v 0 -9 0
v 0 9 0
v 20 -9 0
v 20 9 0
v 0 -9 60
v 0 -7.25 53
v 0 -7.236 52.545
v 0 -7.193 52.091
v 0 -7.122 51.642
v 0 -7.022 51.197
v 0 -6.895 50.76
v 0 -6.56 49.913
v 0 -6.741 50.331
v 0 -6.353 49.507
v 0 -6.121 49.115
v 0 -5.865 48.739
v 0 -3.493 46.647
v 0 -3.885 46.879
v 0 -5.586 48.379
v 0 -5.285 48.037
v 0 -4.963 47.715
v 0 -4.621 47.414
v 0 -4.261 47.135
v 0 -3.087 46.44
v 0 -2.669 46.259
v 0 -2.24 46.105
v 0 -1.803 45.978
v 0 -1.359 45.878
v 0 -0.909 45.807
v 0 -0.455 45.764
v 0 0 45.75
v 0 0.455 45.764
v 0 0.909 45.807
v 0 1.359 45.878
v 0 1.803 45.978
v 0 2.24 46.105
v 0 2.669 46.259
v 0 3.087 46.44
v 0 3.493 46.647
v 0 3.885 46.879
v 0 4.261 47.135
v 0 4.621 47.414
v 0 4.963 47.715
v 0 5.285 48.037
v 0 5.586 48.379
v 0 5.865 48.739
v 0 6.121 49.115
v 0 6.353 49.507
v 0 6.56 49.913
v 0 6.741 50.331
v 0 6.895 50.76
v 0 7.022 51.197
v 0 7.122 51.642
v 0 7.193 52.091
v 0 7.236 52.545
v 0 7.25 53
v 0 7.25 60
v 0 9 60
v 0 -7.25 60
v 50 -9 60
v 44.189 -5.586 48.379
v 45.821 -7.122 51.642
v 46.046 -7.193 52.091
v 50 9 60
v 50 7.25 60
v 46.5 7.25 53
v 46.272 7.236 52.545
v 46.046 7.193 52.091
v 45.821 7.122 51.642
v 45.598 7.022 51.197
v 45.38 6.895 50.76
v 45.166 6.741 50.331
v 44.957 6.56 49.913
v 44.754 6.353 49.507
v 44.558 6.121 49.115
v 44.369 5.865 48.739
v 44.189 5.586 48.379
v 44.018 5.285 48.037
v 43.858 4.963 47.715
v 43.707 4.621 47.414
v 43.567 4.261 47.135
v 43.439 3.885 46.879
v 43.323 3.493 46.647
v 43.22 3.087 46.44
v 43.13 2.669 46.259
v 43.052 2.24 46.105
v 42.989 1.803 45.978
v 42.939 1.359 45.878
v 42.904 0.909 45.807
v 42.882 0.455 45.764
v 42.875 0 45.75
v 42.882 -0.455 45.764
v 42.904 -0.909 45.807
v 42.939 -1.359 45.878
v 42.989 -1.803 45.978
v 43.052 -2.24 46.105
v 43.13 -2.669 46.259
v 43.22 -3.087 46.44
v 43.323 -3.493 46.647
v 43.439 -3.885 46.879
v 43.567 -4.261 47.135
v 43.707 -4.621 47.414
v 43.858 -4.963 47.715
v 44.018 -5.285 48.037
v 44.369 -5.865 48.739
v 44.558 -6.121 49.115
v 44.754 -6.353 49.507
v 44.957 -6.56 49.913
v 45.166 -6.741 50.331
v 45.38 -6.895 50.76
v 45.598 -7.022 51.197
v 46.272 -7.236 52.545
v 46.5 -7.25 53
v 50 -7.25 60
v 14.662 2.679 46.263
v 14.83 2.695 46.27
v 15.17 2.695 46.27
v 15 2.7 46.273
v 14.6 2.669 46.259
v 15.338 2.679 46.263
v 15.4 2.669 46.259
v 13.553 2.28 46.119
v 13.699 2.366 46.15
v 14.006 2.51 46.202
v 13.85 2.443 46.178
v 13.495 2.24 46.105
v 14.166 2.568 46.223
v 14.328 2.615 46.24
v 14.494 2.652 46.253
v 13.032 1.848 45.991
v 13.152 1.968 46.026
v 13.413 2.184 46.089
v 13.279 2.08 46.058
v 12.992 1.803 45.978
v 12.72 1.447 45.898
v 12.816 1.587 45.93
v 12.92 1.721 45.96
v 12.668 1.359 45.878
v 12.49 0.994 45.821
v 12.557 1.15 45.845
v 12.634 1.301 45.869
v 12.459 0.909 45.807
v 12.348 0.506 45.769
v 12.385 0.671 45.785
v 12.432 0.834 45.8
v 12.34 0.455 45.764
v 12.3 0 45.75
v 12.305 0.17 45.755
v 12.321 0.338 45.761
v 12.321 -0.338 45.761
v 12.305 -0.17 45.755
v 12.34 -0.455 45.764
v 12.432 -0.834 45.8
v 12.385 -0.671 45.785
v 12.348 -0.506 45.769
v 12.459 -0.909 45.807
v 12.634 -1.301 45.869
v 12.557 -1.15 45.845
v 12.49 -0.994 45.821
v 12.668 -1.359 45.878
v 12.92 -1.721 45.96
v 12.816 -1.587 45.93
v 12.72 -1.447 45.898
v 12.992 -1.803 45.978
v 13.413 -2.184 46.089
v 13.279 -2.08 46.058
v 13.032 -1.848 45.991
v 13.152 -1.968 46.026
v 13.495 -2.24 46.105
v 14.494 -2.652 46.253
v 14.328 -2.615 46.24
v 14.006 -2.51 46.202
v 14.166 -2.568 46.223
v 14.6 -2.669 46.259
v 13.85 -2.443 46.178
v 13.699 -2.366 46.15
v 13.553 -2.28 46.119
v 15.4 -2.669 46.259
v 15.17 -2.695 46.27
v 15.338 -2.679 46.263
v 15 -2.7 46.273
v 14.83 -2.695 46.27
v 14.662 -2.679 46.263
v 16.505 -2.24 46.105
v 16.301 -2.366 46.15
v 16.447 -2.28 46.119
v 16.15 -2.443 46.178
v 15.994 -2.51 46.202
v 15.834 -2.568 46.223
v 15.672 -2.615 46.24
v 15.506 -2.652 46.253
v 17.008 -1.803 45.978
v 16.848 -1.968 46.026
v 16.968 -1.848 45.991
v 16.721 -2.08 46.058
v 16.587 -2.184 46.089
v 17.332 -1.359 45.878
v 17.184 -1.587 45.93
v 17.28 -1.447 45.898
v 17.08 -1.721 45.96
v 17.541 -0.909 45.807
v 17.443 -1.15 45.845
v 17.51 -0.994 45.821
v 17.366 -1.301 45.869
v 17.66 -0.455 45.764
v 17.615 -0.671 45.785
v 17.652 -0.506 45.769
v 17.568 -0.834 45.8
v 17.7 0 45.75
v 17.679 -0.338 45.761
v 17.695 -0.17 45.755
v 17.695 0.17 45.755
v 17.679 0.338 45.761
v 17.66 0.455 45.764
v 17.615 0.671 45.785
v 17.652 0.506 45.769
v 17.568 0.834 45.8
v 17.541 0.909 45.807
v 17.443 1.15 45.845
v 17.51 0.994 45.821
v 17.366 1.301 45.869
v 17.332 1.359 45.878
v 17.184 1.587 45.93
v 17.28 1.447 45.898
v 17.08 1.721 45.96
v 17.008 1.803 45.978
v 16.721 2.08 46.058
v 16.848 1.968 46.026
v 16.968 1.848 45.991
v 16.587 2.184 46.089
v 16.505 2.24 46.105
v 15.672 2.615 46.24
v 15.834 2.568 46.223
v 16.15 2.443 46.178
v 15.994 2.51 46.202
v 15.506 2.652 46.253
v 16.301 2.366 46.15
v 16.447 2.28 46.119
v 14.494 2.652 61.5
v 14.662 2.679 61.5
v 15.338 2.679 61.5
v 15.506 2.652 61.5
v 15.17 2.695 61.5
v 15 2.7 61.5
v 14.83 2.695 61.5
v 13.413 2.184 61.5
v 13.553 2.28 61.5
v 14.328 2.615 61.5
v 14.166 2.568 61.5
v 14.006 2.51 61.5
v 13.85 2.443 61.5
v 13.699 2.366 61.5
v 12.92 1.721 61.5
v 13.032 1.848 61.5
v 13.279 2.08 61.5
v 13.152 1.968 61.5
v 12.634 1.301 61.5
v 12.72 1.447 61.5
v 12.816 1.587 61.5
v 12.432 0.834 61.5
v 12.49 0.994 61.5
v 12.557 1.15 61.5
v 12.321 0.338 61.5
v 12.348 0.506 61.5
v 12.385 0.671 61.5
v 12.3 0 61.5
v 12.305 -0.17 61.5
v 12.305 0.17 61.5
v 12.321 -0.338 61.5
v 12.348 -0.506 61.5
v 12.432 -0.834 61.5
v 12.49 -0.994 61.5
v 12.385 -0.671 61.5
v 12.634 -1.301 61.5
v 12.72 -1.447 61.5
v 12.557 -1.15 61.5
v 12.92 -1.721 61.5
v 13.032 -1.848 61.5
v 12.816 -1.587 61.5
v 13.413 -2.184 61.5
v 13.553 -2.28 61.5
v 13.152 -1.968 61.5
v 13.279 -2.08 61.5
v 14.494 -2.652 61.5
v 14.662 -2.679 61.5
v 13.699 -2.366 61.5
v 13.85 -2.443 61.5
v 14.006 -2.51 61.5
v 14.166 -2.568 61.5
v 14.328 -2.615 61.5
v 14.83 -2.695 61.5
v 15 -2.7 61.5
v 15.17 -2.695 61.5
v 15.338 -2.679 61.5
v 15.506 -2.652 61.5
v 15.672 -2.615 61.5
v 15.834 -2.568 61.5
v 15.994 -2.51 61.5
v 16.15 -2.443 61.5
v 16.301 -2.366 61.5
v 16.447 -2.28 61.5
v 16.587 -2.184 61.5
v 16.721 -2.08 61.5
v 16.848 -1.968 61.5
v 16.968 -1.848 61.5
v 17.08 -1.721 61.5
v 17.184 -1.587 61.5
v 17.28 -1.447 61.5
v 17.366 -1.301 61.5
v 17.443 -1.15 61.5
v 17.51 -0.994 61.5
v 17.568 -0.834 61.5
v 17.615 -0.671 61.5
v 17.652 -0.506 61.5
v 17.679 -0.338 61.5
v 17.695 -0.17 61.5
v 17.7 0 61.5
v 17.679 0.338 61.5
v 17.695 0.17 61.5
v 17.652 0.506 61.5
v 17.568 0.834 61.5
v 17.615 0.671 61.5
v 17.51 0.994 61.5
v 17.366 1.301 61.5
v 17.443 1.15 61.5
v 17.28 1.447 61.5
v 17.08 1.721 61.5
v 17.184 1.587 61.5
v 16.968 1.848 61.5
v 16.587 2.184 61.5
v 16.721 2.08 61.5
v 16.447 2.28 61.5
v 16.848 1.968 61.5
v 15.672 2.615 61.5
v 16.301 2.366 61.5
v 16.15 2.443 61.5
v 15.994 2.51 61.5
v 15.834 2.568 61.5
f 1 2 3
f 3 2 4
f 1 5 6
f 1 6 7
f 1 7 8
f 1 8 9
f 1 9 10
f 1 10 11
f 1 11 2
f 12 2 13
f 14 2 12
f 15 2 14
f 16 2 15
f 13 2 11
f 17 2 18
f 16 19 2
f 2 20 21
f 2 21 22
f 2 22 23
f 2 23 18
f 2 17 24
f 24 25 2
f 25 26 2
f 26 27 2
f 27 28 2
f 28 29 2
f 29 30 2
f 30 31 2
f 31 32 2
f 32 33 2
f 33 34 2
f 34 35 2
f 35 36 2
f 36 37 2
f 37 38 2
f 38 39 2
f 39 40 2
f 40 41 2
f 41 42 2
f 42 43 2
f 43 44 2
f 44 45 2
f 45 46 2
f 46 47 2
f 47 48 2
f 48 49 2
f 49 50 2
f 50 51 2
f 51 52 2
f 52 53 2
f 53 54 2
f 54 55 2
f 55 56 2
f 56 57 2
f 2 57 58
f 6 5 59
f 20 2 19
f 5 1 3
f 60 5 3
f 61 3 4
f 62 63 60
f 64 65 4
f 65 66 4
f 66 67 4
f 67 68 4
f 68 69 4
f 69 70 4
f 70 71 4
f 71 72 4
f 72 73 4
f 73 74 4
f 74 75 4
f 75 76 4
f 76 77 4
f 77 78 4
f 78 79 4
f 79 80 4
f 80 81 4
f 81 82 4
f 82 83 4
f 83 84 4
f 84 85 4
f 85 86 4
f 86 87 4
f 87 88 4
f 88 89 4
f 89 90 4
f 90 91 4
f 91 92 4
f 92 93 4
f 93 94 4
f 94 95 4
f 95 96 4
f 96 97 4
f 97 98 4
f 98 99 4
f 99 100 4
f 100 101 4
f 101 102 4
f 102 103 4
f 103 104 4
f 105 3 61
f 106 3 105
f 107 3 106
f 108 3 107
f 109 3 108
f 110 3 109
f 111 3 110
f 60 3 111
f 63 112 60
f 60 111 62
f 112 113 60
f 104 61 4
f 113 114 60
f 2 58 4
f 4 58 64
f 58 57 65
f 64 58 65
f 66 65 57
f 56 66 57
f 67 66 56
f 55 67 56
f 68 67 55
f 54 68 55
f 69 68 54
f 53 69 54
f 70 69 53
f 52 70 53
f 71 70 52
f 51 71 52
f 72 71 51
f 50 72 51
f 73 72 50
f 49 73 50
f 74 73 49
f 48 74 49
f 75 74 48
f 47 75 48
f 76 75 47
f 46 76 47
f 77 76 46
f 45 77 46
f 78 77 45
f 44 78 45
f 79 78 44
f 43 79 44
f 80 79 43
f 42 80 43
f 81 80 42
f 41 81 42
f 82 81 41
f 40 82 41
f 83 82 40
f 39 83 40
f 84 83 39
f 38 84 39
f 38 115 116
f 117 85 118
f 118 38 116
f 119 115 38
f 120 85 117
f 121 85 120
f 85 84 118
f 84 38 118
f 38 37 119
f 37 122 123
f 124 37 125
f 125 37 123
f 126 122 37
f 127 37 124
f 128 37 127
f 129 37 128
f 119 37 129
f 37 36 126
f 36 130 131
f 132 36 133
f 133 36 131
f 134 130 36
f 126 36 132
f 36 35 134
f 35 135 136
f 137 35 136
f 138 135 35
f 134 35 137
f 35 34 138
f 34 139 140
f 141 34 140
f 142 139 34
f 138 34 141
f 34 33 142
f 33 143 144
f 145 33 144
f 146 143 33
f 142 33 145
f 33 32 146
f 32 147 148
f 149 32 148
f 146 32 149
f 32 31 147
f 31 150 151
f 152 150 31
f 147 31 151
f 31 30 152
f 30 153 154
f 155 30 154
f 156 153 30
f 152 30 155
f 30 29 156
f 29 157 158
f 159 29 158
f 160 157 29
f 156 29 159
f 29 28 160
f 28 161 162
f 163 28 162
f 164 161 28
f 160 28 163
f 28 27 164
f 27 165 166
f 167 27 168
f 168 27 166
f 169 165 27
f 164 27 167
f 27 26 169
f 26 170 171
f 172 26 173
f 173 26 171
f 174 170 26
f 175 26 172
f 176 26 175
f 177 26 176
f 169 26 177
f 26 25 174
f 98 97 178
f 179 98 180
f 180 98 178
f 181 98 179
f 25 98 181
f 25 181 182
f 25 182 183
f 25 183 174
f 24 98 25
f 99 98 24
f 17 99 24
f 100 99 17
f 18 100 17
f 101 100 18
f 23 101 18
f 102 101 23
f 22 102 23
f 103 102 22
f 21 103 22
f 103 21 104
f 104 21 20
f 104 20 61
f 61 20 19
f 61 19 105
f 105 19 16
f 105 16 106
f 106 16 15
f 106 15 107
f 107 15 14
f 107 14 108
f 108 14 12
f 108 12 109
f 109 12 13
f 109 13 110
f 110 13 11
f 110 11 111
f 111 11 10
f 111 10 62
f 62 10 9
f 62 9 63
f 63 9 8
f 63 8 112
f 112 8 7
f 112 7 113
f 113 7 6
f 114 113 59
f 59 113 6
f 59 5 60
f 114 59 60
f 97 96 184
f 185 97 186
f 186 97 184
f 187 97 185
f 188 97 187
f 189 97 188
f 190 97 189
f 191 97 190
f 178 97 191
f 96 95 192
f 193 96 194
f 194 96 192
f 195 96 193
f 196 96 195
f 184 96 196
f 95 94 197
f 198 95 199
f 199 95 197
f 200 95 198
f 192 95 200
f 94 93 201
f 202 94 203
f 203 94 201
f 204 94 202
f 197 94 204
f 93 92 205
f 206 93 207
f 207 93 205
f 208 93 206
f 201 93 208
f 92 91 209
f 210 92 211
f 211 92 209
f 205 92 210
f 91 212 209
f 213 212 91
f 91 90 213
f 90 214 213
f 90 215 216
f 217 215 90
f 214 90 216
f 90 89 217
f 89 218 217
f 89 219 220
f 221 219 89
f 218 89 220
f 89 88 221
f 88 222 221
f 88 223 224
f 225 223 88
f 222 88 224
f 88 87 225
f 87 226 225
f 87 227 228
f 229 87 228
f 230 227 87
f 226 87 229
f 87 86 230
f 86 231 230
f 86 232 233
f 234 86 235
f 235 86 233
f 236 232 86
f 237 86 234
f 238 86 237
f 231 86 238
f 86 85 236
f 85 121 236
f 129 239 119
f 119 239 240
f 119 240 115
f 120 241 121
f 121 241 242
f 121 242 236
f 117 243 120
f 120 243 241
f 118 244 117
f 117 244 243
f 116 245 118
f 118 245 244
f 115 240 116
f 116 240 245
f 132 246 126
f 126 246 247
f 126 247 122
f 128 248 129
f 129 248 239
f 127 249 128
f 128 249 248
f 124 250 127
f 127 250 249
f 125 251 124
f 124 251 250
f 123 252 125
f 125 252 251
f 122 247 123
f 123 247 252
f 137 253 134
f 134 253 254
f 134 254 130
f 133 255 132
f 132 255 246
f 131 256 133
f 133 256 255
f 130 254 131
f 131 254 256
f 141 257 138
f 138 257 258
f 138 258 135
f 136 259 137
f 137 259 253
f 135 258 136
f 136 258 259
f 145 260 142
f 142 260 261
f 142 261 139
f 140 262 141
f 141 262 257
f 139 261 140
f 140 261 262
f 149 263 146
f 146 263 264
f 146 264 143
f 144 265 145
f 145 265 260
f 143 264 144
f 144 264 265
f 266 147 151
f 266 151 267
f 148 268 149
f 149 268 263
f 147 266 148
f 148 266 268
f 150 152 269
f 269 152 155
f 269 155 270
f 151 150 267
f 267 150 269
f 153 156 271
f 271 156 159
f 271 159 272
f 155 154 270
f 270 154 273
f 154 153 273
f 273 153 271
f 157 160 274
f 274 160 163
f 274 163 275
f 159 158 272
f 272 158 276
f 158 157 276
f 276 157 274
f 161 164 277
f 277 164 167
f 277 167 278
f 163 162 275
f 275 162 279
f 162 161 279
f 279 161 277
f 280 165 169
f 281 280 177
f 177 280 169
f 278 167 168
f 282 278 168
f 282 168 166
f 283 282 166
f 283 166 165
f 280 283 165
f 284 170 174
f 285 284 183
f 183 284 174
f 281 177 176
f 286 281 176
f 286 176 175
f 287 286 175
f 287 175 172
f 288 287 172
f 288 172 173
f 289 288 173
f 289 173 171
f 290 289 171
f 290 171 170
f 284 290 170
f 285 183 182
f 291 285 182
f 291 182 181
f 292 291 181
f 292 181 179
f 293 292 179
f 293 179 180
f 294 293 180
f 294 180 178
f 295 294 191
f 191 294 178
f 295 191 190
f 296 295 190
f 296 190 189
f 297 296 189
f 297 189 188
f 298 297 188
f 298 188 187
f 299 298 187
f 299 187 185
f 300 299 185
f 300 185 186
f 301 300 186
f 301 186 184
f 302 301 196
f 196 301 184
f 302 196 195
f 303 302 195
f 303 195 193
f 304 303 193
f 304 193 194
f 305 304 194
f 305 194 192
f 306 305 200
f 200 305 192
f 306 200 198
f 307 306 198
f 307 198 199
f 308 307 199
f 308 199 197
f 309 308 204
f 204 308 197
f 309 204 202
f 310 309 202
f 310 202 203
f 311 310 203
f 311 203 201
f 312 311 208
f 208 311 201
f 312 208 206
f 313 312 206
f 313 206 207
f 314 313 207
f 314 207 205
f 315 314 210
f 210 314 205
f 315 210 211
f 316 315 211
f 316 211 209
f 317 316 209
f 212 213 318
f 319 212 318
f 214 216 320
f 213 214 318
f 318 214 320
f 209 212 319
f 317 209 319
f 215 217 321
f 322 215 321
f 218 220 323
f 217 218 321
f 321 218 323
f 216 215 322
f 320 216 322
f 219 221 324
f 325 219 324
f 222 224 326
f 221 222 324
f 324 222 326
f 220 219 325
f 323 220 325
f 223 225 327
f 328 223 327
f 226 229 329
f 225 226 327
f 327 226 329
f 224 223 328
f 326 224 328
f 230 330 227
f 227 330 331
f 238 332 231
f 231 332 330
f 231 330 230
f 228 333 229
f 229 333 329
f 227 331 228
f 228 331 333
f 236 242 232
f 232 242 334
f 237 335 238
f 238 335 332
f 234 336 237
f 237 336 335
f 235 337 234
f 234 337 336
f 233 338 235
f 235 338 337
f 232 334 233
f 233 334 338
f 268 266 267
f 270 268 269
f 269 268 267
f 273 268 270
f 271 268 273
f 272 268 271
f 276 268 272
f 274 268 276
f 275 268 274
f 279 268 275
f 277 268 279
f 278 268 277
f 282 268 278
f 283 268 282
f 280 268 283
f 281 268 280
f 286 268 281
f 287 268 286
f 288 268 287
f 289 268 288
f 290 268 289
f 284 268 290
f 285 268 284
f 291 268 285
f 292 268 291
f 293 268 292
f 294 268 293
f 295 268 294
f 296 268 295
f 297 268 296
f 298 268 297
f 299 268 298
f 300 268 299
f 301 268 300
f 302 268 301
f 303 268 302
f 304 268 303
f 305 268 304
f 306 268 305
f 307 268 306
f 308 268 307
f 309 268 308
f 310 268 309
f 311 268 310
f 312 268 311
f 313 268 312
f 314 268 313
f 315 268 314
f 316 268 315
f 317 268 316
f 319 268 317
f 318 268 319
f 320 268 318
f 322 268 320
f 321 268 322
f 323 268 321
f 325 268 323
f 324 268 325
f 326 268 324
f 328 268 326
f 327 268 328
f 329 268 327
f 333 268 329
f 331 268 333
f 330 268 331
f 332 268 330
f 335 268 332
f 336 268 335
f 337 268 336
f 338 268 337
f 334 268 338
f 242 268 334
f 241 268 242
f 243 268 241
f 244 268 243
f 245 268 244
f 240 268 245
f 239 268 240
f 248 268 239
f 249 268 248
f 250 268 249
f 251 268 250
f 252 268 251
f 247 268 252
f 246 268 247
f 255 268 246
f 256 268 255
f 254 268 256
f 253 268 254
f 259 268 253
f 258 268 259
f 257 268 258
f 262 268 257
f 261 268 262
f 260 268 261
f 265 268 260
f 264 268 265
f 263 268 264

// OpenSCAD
hauteur = 60;
longueur_max = 50;
longueur_min = 20;
rayon = 7;
epaisseur = 18;
diametre = 14.5;
diametre_tige = 5.4;

module step1 ()
{
	
  polyhedron
  (
		points=[[0,0,0], [longueur_min,0,0], [longueur_max,0,hauteur], [00,00,hauteur], 
[0,epaisseur,0], [longueur_min,epaisseur,0], [longueur_max,epaisseur,hauteur], [0,epaisseur,hauteur]],  
		triangles=[[0,3,1],[1,3,2],  // face avant
             [0,4,3],[4,7,3],  // face gauche
             [1,2,6],[1,6,5],  // face droite
             [4,5,7],[5,6,7],  // face arrière
             [0,1,4],[1,5,4],  // bas
             [3,7,6],[3,6,2]]  // haut
  		);
}

module step2 ()
{
	difference ()
	{
		translate ([0,-epaisseur/2,0]) step1 ();
		union(){
			translate ([-5,0,hauteur-rayon]) rotate ([90,0,90]) cylinder (r=diametre/2, h=longueur_max*1.5, $fn=100);
			translate ([-5,-diametre/2,hauteur-rayon]) cube([longueur_max*1.5,diametre,diametre]);
		}
	}
	translate ([15,0,hauteur-2*rayon-1]) cylinder (r=5.4/2, h=diametre+2, $fn=100);
}



step2 ();
